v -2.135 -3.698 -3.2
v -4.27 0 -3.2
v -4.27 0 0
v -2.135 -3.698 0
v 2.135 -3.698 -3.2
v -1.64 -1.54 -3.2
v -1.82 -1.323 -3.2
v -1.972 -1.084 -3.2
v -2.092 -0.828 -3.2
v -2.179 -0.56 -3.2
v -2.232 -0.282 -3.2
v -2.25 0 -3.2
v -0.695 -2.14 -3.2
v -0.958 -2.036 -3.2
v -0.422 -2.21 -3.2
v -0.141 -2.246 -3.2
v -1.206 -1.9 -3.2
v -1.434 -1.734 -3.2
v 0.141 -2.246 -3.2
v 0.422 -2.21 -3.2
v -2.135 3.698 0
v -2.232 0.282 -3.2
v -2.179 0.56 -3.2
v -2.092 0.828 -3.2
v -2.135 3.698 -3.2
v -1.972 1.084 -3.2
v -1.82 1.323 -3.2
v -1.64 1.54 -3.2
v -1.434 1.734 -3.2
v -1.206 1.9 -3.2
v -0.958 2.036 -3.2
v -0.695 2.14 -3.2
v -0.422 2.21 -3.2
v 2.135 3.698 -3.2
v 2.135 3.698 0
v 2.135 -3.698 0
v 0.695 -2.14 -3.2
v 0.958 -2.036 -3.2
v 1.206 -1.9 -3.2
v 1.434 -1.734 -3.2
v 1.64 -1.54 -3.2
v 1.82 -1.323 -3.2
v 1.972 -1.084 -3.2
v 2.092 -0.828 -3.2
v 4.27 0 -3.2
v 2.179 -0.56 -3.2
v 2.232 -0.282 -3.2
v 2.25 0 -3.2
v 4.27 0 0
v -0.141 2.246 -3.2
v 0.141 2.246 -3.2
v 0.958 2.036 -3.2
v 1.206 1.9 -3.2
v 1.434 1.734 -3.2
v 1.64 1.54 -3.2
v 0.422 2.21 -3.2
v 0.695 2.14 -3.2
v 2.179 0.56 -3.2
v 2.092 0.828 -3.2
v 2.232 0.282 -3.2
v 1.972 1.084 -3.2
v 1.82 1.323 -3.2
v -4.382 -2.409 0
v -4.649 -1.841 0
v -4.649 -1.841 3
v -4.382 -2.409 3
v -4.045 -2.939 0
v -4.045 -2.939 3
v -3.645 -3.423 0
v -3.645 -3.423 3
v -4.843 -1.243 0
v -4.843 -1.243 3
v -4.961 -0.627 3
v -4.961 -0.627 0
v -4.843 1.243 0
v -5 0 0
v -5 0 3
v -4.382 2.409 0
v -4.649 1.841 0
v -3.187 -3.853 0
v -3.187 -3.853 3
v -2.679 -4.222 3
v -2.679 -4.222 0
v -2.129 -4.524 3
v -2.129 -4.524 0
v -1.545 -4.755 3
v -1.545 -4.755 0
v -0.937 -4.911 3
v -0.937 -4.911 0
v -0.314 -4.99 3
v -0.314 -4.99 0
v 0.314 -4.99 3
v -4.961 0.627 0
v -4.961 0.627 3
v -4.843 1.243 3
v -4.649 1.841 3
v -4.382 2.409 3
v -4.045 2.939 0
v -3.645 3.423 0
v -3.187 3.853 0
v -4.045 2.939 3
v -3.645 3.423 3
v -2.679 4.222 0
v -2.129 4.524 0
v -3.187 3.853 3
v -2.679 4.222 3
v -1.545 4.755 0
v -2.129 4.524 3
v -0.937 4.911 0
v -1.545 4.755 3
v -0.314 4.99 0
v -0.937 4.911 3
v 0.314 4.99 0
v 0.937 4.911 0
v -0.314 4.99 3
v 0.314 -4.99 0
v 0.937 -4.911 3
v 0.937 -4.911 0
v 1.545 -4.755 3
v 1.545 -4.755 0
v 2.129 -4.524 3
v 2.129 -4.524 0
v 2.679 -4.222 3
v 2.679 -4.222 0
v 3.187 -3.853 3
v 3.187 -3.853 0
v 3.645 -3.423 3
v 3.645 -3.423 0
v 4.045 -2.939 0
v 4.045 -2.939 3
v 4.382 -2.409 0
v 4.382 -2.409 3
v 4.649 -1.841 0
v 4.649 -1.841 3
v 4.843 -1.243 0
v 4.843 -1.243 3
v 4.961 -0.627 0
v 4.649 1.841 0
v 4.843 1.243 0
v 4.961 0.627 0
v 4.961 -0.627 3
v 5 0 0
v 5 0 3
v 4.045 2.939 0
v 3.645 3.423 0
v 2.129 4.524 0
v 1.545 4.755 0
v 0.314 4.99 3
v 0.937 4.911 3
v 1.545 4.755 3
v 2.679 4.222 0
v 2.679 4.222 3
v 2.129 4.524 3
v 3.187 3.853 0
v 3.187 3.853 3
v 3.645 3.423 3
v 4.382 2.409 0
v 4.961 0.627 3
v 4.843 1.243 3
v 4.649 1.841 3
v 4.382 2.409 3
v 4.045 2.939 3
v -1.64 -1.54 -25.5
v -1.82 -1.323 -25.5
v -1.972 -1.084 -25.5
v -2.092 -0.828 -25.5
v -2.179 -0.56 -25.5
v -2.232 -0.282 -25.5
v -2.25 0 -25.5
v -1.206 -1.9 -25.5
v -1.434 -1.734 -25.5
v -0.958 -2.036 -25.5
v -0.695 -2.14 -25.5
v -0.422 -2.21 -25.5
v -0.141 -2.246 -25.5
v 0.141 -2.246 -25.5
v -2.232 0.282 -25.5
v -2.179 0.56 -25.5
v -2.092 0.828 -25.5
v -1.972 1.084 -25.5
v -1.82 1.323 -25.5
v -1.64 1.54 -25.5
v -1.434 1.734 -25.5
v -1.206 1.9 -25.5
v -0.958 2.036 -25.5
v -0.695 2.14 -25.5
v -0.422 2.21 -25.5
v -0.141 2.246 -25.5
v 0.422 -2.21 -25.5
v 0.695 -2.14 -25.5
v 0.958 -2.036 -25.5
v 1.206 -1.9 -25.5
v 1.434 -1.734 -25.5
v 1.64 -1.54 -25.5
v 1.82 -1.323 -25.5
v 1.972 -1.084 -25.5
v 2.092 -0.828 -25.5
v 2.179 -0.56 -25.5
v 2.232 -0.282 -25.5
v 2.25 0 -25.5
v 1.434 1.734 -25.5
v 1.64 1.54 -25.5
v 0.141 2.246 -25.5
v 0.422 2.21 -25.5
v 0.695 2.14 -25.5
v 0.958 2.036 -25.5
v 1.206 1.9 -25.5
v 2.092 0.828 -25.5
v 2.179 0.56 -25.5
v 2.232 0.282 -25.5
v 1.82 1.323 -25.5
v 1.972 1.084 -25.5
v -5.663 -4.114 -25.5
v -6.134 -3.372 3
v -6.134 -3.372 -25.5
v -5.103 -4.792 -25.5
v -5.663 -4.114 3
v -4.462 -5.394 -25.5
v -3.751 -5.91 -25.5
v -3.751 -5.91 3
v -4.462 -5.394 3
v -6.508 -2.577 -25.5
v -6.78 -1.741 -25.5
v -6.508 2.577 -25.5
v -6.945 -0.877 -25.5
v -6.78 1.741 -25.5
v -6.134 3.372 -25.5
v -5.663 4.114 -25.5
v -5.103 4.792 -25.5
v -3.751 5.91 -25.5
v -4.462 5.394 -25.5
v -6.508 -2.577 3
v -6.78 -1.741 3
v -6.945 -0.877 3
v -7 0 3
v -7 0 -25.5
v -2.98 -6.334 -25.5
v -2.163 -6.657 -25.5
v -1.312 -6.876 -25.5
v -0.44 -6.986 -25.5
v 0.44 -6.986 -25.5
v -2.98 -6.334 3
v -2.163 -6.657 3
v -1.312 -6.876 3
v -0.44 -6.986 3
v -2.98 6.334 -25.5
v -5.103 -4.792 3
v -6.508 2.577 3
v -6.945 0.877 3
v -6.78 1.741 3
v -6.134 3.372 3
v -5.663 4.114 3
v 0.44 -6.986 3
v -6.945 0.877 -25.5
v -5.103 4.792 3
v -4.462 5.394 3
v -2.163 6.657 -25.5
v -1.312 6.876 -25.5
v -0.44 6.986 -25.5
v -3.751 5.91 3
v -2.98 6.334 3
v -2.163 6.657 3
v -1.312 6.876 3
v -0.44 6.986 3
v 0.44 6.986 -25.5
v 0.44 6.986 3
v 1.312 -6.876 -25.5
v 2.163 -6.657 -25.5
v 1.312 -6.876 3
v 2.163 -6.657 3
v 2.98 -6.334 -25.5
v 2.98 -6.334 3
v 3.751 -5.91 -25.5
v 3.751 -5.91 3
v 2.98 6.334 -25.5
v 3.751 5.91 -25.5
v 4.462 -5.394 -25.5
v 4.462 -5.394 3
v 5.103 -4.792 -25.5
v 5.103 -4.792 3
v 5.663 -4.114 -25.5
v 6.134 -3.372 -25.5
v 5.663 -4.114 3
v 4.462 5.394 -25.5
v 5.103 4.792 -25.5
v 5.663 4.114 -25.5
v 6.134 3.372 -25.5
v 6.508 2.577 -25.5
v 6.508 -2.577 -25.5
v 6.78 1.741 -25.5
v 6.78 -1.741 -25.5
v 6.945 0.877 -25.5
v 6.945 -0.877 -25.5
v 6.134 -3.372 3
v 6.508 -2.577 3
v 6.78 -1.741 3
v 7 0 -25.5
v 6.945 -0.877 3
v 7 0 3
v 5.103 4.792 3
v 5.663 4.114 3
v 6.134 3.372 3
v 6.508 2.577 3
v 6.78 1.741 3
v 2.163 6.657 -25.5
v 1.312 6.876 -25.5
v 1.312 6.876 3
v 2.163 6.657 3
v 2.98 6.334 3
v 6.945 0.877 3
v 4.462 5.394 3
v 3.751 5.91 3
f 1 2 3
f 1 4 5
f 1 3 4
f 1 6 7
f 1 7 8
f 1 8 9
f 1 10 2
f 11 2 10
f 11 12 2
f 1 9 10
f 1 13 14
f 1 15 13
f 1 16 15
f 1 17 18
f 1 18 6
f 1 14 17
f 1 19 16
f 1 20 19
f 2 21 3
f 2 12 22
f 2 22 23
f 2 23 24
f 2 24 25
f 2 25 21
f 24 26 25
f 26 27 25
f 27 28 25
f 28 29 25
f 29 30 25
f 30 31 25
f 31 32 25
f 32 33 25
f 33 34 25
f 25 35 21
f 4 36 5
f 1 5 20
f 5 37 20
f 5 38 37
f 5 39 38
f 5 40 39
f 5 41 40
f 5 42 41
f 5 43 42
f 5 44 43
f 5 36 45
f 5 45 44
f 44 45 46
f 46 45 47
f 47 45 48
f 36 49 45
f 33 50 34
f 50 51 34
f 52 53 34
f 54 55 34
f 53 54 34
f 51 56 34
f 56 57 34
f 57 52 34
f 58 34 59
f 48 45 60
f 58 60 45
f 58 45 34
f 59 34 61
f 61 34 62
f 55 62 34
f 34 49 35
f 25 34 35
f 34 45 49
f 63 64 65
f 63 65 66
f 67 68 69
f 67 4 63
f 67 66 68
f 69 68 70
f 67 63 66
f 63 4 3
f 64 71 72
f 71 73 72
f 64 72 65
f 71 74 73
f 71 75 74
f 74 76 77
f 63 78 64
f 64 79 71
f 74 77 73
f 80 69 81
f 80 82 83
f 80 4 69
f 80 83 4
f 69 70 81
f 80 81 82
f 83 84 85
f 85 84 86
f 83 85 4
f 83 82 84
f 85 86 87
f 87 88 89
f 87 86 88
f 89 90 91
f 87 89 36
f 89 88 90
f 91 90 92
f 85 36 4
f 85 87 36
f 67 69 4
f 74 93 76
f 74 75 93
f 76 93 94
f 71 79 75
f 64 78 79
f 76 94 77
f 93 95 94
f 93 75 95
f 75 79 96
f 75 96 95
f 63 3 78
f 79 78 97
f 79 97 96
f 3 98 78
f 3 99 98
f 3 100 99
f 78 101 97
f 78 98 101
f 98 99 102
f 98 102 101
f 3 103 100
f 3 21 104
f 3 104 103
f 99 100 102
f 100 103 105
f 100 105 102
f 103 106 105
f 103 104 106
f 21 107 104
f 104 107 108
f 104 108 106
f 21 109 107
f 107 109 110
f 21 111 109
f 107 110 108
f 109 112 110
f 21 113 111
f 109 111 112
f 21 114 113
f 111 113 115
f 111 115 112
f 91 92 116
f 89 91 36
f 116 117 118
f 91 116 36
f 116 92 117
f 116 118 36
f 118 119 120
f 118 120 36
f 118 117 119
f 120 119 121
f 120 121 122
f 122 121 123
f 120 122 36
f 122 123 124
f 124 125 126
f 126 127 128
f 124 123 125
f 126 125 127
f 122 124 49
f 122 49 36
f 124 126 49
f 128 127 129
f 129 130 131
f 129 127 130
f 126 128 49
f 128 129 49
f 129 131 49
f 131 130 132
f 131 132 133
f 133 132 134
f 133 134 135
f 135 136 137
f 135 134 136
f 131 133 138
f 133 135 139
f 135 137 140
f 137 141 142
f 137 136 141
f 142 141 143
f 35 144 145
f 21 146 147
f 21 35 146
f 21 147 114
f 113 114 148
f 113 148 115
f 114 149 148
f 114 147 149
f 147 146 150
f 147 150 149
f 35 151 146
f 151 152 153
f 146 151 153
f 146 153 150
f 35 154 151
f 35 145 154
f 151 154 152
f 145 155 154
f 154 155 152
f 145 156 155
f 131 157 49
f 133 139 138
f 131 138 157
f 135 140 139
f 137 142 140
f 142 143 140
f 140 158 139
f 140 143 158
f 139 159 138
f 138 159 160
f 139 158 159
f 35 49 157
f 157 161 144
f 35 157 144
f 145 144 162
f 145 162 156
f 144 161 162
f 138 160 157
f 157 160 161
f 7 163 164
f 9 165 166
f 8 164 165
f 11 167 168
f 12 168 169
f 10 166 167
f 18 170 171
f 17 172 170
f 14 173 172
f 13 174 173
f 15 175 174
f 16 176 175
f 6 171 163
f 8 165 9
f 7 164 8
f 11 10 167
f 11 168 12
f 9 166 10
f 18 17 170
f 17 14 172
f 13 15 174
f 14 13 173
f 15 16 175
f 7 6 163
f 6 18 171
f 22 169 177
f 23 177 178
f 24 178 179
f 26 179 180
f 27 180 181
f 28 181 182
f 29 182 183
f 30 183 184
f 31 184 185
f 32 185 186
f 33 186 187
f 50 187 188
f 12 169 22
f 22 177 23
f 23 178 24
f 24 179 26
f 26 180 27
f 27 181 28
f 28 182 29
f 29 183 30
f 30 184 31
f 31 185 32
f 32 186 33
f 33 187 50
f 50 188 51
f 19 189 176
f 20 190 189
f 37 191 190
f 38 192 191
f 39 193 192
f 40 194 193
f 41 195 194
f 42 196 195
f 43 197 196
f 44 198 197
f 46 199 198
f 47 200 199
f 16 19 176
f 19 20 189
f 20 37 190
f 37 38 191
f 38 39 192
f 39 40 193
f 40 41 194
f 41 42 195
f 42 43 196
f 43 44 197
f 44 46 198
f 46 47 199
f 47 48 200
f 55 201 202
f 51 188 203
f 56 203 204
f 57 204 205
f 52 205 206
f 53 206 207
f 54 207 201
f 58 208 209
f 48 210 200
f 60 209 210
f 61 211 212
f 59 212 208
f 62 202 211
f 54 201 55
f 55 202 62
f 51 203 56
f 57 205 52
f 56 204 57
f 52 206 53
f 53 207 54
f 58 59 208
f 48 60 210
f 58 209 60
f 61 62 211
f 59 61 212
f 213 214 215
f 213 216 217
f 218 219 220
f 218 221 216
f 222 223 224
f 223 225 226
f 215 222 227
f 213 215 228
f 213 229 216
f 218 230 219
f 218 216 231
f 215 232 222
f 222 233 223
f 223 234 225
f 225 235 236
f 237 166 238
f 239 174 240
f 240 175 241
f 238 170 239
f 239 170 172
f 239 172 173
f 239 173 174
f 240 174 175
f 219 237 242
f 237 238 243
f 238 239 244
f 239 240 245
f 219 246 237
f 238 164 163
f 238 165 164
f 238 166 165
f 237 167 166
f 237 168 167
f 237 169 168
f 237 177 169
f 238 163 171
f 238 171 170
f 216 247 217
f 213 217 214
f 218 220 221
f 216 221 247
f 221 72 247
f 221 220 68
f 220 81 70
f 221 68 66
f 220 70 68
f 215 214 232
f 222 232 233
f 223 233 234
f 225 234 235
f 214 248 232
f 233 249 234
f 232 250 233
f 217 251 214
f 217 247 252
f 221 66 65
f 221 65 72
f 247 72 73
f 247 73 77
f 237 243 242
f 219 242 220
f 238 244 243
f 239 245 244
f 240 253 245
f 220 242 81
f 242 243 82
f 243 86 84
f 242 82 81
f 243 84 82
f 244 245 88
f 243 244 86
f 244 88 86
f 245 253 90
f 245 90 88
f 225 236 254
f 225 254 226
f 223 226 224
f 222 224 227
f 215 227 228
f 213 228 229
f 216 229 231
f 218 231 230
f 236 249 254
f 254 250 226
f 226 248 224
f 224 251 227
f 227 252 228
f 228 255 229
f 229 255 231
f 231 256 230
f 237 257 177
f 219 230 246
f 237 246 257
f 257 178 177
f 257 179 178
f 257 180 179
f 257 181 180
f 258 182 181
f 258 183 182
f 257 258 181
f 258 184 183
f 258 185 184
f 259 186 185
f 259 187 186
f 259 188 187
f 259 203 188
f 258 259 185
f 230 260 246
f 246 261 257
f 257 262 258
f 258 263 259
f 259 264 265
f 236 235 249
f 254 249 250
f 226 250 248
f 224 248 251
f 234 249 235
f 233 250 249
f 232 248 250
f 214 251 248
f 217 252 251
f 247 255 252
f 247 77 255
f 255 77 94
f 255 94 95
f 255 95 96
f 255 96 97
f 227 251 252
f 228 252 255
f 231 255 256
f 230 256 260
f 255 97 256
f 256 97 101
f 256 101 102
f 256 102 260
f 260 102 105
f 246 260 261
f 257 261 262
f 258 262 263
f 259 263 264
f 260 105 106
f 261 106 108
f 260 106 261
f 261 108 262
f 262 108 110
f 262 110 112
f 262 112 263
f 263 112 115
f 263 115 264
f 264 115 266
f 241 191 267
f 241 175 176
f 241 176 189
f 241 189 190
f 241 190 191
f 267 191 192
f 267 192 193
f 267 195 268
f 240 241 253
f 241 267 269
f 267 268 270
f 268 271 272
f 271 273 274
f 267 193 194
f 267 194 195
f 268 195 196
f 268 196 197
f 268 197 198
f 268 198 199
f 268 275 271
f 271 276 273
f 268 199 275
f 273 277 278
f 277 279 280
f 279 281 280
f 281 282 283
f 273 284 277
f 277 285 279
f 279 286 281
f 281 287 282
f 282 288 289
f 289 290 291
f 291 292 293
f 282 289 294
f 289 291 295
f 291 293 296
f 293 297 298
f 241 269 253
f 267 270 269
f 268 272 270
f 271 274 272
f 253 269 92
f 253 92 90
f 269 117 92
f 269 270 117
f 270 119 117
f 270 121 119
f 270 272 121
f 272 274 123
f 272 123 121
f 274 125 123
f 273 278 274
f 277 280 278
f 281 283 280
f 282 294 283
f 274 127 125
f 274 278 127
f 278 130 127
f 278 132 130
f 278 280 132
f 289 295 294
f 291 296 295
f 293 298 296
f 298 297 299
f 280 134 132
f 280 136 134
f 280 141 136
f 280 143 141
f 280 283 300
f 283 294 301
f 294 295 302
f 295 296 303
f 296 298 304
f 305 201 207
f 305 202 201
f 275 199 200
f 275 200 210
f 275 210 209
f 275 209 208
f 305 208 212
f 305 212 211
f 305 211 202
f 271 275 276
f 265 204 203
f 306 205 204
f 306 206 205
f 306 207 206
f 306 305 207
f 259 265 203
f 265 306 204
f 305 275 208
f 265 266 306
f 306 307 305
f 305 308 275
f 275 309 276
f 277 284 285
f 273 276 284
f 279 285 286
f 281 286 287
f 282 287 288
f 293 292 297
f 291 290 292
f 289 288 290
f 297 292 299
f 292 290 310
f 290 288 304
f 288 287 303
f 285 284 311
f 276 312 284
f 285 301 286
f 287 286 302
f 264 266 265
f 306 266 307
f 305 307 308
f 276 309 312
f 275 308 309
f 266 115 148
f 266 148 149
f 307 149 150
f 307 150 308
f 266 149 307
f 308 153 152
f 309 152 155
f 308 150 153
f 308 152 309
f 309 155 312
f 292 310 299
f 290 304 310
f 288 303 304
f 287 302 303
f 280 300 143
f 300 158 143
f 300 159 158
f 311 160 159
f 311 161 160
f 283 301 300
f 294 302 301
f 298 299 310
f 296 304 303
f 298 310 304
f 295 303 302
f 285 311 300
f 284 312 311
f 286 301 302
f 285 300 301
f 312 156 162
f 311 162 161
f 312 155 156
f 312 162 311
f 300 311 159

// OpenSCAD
$fn = 50;

difference() {
	union() {
		translate(v = [0, 0, -25.5]) {
			cylinder(h = 28.5, r = 7.0);
		}
	}
	union() {
		translate(v = [0, 0, 0]) {
			rotate(a = [0, 0, 0]) {
				difference() {
					union() {
						translate(v = [0, 0, -3.2]) {
							linear_extrude(height = 3.2) {
								polygon(points = [[4.2698, 0.0], [2.1349000000000005, 3.697755269078796], [-2.134899999999999, 3.6977552690787965], [-4.2698, 5.228996902999369e-16], [-2.134900000000002, -3.6977552690787956], [2.1348999999999974, -3.697755269078798]]);
							}
						}
					}
					union();
				}
			}
		}
		#cylinder(h = 3, r = 5.0);
		#translate(v = [0, 0, -100.0]) {
			cylinder(h = 200, r = 2.25);
		}
	}
}
